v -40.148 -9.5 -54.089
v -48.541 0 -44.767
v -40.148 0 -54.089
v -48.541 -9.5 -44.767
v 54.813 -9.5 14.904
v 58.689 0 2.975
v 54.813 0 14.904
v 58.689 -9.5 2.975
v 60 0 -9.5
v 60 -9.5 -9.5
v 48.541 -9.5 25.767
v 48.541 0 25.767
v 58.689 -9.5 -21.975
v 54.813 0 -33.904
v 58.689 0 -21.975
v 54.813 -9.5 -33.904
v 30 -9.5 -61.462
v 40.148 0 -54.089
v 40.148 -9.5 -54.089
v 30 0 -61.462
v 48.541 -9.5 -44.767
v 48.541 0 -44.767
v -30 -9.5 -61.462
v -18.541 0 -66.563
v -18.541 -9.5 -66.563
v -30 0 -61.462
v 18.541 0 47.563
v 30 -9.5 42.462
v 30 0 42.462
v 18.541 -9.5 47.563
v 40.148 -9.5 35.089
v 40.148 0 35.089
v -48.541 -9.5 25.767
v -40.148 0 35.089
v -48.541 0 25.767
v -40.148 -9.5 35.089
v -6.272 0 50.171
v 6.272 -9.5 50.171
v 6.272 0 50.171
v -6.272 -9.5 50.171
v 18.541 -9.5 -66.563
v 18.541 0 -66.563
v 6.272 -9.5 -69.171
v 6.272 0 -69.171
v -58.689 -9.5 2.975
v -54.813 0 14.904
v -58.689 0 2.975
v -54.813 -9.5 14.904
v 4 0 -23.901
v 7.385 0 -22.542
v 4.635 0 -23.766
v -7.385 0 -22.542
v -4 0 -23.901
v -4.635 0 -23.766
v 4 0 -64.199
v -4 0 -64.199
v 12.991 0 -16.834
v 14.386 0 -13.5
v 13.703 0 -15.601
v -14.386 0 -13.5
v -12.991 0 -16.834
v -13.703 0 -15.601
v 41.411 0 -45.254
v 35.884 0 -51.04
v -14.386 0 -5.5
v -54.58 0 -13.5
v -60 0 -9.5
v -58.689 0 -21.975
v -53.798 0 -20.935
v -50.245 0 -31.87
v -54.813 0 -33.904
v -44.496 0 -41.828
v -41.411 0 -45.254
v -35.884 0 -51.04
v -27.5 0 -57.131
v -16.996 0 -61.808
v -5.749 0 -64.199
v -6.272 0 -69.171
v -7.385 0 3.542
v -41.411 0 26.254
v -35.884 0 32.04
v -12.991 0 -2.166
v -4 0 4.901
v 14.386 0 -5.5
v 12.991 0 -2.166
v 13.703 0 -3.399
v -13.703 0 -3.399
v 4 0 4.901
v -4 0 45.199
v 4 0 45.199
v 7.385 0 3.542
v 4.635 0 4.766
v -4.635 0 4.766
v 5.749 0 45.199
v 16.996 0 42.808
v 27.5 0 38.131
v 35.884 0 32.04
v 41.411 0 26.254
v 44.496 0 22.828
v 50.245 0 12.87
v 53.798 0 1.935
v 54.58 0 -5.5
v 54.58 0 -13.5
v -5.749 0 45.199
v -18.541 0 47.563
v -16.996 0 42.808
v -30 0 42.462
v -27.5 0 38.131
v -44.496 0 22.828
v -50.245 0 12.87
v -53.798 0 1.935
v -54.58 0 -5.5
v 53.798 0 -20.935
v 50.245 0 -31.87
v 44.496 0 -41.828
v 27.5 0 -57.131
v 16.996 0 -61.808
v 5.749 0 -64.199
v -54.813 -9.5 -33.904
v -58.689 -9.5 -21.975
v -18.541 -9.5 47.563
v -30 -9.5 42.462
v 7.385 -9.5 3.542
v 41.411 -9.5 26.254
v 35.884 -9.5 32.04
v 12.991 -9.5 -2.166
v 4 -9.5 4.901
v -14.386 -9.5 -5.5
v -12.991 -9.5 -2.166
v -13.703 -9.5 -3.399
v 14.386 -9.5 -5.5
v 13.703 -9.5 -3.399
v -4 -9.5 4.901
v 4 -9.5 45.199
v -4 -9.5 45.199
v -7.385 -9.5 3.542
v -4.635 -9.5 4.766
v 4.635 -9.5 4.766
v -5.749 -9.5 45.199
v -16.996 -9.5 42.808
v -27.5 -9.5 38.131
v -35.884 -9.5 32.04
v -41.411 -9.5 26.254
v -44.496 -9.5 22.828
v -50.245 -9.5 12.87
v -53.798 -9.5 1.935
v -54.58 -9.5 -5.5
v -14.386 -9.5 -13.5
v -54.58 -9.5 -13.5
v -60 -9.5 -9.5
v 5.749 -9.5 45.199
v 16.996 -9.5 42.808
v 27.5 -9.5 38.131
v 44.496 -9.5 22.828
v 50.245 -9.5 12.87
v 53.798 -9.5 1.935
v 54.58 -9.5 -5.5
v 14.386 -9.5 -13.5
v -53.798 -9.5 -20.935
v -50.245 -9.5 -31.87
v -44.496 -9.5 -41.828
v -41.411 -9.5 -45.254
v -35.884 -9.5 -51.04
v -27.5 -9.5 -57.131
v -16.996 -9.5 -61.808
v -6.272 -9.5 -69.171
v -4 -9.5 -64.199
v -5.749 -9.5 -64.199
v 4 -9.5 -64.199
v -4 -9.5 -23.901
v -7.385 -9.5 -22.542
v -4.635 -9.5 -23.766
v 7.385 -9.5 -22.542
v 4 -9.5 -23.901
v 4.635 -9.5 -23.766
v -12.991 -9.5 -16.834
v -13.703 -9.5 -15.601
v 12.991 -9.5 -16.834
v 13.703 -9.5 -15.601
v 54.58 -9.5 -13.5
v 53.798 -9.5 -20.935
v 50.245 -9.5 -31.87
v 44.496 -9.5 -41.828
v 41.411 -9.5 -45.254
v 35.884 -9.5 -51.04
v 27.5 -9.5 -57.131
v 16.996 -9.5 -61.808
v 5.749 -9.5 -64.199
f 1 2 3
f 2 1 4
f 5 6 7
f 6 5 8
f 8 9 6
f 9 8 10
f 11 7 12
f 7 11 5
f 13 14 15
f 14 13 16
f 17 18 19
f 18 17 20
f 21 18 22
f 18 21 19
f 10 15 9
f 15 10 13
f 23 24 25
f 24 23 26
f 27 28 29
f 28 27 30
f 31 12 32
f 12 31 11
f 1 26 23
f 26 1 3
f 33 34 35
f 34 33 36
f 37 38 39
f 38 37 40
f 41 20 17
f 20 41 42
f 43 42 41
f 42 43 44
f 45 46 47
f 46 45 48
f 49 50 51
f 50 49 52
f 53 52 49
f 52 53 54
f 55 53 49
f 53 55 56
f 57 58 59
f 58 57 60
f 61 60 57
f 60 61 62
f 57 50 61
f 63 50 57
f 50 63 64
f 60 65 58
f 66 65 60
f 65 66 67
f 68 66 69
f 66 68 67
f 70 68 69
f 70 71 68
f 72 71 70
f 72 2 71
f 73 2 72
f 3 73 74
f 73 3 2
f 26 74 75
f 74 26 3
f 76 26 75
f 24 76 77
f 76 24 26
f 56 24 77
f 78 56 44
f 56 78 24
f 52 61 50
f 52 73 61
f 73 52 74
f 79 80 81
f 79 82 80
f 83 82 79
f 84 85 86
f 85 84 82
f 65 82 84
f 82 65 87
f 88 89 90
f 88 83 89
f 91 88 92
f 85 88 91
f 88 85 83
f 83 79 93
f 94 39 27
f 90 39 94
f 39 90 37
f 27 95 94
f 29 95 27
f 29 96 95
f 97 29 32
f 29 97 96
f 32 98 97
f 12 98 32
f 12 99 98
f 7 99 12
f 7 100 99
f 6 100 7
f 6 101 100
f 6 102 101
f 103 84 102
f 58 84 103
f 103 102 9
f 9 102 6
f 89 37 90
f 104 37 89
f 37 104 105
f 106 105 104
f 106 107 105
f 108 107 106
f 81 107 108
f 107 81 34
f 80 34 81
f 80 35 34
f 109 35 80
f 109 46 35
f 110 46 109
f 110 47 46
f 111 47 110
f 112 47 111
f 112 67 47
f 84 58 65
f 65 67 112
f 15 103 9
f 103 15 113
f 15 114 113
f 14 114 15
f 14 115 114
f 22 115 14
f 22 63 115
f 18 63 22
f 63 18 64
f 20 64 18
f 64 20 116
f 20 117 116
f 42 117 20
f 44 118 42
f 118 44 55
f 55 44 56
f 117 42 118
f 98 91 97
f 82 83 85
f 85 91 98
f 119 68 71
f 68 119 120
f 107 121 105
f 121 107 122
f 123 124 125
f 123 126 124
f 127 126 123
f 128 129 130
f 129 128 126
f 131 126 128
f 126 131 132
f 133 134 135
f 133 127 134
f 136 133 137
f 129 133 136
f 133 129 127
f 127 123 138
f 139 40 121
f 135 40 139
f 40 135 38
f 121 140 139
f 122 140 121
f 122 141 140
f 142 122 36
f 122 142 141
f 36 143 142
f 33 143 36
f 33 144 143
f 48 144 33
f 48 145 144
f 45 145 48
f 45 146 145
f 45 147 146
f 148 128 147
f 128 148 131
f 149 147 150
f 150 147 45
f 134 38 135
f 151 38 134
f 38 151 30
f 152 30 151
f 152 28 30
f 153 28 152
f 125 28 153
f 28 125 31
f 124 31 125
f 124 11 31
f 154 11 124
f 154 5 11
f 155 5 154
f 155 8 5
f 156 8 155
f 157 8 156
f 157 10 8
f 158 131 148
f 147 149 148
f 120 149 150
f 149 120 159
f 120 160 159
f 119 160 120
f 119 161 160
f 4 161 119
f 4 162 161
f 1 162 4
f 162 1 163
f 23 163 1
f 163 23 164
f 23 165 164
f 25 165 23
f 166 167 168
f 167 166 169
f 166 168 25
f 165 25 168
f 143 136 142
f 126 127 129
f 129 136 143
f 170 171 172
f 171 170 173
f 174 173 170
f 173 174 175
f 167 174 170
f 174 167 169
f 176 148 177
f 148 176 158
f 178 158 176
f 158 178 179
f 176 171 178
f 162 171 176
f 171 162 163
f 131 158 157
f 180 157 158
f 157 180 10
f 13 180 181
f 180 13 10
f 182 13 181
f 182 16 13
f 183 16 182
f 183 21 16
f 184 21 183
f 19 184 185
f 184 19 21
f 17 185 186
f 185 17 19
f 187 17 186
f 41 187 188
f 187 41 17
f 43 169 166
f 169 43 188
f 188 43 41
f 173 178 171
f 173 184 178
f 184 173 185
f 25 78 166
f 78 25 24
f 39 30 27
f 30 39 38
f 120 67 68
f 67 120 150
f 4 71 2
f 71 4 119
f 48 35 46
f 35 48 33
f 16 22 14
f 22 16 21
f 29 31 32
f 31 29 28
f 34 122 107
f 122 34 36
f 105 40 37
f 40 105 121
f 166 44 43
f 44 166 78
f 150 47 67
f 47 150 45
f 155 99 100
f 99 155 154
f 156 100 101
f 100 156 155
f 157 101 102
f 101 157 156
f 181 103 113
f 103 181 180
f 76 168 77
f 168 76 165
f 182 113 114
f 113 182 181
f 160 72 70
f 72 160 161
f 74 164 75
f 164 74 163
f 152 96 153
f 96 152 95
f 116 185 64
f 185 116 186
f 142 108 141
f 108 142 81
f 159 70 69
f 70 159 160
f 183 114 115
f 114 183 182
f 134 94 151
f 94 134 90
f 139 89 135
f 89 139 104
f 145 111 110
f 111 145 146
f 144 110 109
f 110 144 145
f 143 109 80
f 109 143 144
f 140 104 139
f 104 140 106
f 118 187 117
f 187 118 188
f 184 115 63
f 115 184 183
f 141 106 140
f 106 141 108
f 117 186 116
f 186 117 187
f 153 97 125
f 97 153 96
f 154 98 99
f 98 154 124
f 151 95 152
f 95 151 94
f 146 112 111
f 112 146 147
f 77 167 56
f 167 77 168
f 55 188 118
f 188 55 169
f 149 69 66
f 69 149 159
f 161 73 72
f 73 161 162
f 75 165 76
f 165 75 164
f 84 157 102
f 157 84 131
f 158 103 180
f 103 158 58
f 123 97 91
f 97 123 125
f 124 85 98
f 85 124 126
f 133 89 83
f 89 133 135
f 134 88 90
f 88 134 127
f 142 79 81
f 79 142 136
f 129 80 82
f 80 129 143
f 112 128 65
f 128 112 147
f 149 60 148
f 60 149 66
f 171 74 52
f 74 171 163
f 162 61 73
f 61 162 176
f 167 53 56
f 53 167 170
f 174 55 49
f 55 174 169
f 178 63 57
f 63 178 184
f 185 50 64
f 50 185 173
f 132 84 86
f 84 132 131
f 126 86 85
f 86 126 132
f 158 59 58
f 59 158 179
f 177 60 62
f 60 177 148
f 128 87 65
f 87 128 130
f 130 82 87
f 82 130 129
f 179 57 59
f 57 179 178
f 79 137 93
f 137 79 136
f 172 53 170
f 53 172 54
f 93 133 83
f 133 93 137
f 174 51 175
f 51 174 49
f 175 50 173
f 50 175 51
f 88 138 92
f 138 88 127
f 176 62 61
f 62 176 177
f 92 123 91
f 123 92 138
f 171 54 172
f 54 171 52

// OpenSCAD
/* doodle-meta {"version":1,"parameters":{"outer_diameter":{"label":"Outer Diameter","description":"Diameter of the wheel rim","unit":"mm","feature":"wheel_body"},"wheel_thickness":{"label":"Wheel Thickness","description":"Thickness of the wheel (axial depth)","unit":"mm","feature":"wheel_body"},"hub_diameter":{"label":"Hub Diameter","description":"Diameter of the central hub","unit":"mm","feature":"wheel_body"},"spoke_count":{"label":"Spoke Count","description":"Number of spokes","unit":"count","feature":"wheel_body"},"spoke_width":{"label":"Spoke Width","description":"Width of each spoke","unit":"mm","feature":"wheel_body"}},"features":{"wheel_body":{"kind":"region","label":"Wheel Body","min":[0,0,0],"max":[{"parameter":"outer_diameter","scale":0.5},{"parameter":"wheel_thickness","offset":0},{"parameter":"outer_diameter","scale":0.5}]}}} */

// Parameters
outer_diameter = 120;
wheel_thickness = 9.5;
hub_diameter = 30;
spoke_count = 8;
spoke_width = 8;
rim_thickness = 5;

// Derived parameters
outer_radius = outer_diameter / 2;
hub_radius = hub_diameter / 2;
inner_rim_radius = outer_radius - rim_thickness;

// Spoke dimensions
spoke_start_radius = hub_radius - 2;
spoke_end_radius = inner_rim_radius + 2;
spoke_length = spoke_end_radius - spoke_start_radius;
spoke_center_radius = (spoke_start_radius + spoke_end_radius) / 2;

module wheel() {
    union() {
        // Rim
        difference() {
            cylinder(h = wheel_thickness, r = outer_radius, center = false);
            cylinder(h = wheel_thickness, r = inner_rim_radius, center = false);
        }
        
        // Hub
        cylinder(h = wheel_thickness, r = hub_radius, center = false);
        
        // Spokes
        for (i = [0 : spoke_count - 1]) {
            rotate([0, 0, i * (360 / spoke_count)]) {
                translate([spoke_center_radius, 0, wheel_thickness / 2]) {
                    cube([spoke_length, spoke_width, wheel_thickness], center = true);
                }
            }
        }
    }
}

// Rotate the entire wheel so the axis aligns with Y
// Original axis is Z, we need it along Y.
// rotate([90, 0, 0]) rotates Z to -Y.
// translate([0, wheel_thickness, 0]) moves it back to Y=0..wheel_thickness.
rotate([90, 0, 0]) {
    translate([0, -wheel_thickness, 0]) {
        wheel();
    }
}
